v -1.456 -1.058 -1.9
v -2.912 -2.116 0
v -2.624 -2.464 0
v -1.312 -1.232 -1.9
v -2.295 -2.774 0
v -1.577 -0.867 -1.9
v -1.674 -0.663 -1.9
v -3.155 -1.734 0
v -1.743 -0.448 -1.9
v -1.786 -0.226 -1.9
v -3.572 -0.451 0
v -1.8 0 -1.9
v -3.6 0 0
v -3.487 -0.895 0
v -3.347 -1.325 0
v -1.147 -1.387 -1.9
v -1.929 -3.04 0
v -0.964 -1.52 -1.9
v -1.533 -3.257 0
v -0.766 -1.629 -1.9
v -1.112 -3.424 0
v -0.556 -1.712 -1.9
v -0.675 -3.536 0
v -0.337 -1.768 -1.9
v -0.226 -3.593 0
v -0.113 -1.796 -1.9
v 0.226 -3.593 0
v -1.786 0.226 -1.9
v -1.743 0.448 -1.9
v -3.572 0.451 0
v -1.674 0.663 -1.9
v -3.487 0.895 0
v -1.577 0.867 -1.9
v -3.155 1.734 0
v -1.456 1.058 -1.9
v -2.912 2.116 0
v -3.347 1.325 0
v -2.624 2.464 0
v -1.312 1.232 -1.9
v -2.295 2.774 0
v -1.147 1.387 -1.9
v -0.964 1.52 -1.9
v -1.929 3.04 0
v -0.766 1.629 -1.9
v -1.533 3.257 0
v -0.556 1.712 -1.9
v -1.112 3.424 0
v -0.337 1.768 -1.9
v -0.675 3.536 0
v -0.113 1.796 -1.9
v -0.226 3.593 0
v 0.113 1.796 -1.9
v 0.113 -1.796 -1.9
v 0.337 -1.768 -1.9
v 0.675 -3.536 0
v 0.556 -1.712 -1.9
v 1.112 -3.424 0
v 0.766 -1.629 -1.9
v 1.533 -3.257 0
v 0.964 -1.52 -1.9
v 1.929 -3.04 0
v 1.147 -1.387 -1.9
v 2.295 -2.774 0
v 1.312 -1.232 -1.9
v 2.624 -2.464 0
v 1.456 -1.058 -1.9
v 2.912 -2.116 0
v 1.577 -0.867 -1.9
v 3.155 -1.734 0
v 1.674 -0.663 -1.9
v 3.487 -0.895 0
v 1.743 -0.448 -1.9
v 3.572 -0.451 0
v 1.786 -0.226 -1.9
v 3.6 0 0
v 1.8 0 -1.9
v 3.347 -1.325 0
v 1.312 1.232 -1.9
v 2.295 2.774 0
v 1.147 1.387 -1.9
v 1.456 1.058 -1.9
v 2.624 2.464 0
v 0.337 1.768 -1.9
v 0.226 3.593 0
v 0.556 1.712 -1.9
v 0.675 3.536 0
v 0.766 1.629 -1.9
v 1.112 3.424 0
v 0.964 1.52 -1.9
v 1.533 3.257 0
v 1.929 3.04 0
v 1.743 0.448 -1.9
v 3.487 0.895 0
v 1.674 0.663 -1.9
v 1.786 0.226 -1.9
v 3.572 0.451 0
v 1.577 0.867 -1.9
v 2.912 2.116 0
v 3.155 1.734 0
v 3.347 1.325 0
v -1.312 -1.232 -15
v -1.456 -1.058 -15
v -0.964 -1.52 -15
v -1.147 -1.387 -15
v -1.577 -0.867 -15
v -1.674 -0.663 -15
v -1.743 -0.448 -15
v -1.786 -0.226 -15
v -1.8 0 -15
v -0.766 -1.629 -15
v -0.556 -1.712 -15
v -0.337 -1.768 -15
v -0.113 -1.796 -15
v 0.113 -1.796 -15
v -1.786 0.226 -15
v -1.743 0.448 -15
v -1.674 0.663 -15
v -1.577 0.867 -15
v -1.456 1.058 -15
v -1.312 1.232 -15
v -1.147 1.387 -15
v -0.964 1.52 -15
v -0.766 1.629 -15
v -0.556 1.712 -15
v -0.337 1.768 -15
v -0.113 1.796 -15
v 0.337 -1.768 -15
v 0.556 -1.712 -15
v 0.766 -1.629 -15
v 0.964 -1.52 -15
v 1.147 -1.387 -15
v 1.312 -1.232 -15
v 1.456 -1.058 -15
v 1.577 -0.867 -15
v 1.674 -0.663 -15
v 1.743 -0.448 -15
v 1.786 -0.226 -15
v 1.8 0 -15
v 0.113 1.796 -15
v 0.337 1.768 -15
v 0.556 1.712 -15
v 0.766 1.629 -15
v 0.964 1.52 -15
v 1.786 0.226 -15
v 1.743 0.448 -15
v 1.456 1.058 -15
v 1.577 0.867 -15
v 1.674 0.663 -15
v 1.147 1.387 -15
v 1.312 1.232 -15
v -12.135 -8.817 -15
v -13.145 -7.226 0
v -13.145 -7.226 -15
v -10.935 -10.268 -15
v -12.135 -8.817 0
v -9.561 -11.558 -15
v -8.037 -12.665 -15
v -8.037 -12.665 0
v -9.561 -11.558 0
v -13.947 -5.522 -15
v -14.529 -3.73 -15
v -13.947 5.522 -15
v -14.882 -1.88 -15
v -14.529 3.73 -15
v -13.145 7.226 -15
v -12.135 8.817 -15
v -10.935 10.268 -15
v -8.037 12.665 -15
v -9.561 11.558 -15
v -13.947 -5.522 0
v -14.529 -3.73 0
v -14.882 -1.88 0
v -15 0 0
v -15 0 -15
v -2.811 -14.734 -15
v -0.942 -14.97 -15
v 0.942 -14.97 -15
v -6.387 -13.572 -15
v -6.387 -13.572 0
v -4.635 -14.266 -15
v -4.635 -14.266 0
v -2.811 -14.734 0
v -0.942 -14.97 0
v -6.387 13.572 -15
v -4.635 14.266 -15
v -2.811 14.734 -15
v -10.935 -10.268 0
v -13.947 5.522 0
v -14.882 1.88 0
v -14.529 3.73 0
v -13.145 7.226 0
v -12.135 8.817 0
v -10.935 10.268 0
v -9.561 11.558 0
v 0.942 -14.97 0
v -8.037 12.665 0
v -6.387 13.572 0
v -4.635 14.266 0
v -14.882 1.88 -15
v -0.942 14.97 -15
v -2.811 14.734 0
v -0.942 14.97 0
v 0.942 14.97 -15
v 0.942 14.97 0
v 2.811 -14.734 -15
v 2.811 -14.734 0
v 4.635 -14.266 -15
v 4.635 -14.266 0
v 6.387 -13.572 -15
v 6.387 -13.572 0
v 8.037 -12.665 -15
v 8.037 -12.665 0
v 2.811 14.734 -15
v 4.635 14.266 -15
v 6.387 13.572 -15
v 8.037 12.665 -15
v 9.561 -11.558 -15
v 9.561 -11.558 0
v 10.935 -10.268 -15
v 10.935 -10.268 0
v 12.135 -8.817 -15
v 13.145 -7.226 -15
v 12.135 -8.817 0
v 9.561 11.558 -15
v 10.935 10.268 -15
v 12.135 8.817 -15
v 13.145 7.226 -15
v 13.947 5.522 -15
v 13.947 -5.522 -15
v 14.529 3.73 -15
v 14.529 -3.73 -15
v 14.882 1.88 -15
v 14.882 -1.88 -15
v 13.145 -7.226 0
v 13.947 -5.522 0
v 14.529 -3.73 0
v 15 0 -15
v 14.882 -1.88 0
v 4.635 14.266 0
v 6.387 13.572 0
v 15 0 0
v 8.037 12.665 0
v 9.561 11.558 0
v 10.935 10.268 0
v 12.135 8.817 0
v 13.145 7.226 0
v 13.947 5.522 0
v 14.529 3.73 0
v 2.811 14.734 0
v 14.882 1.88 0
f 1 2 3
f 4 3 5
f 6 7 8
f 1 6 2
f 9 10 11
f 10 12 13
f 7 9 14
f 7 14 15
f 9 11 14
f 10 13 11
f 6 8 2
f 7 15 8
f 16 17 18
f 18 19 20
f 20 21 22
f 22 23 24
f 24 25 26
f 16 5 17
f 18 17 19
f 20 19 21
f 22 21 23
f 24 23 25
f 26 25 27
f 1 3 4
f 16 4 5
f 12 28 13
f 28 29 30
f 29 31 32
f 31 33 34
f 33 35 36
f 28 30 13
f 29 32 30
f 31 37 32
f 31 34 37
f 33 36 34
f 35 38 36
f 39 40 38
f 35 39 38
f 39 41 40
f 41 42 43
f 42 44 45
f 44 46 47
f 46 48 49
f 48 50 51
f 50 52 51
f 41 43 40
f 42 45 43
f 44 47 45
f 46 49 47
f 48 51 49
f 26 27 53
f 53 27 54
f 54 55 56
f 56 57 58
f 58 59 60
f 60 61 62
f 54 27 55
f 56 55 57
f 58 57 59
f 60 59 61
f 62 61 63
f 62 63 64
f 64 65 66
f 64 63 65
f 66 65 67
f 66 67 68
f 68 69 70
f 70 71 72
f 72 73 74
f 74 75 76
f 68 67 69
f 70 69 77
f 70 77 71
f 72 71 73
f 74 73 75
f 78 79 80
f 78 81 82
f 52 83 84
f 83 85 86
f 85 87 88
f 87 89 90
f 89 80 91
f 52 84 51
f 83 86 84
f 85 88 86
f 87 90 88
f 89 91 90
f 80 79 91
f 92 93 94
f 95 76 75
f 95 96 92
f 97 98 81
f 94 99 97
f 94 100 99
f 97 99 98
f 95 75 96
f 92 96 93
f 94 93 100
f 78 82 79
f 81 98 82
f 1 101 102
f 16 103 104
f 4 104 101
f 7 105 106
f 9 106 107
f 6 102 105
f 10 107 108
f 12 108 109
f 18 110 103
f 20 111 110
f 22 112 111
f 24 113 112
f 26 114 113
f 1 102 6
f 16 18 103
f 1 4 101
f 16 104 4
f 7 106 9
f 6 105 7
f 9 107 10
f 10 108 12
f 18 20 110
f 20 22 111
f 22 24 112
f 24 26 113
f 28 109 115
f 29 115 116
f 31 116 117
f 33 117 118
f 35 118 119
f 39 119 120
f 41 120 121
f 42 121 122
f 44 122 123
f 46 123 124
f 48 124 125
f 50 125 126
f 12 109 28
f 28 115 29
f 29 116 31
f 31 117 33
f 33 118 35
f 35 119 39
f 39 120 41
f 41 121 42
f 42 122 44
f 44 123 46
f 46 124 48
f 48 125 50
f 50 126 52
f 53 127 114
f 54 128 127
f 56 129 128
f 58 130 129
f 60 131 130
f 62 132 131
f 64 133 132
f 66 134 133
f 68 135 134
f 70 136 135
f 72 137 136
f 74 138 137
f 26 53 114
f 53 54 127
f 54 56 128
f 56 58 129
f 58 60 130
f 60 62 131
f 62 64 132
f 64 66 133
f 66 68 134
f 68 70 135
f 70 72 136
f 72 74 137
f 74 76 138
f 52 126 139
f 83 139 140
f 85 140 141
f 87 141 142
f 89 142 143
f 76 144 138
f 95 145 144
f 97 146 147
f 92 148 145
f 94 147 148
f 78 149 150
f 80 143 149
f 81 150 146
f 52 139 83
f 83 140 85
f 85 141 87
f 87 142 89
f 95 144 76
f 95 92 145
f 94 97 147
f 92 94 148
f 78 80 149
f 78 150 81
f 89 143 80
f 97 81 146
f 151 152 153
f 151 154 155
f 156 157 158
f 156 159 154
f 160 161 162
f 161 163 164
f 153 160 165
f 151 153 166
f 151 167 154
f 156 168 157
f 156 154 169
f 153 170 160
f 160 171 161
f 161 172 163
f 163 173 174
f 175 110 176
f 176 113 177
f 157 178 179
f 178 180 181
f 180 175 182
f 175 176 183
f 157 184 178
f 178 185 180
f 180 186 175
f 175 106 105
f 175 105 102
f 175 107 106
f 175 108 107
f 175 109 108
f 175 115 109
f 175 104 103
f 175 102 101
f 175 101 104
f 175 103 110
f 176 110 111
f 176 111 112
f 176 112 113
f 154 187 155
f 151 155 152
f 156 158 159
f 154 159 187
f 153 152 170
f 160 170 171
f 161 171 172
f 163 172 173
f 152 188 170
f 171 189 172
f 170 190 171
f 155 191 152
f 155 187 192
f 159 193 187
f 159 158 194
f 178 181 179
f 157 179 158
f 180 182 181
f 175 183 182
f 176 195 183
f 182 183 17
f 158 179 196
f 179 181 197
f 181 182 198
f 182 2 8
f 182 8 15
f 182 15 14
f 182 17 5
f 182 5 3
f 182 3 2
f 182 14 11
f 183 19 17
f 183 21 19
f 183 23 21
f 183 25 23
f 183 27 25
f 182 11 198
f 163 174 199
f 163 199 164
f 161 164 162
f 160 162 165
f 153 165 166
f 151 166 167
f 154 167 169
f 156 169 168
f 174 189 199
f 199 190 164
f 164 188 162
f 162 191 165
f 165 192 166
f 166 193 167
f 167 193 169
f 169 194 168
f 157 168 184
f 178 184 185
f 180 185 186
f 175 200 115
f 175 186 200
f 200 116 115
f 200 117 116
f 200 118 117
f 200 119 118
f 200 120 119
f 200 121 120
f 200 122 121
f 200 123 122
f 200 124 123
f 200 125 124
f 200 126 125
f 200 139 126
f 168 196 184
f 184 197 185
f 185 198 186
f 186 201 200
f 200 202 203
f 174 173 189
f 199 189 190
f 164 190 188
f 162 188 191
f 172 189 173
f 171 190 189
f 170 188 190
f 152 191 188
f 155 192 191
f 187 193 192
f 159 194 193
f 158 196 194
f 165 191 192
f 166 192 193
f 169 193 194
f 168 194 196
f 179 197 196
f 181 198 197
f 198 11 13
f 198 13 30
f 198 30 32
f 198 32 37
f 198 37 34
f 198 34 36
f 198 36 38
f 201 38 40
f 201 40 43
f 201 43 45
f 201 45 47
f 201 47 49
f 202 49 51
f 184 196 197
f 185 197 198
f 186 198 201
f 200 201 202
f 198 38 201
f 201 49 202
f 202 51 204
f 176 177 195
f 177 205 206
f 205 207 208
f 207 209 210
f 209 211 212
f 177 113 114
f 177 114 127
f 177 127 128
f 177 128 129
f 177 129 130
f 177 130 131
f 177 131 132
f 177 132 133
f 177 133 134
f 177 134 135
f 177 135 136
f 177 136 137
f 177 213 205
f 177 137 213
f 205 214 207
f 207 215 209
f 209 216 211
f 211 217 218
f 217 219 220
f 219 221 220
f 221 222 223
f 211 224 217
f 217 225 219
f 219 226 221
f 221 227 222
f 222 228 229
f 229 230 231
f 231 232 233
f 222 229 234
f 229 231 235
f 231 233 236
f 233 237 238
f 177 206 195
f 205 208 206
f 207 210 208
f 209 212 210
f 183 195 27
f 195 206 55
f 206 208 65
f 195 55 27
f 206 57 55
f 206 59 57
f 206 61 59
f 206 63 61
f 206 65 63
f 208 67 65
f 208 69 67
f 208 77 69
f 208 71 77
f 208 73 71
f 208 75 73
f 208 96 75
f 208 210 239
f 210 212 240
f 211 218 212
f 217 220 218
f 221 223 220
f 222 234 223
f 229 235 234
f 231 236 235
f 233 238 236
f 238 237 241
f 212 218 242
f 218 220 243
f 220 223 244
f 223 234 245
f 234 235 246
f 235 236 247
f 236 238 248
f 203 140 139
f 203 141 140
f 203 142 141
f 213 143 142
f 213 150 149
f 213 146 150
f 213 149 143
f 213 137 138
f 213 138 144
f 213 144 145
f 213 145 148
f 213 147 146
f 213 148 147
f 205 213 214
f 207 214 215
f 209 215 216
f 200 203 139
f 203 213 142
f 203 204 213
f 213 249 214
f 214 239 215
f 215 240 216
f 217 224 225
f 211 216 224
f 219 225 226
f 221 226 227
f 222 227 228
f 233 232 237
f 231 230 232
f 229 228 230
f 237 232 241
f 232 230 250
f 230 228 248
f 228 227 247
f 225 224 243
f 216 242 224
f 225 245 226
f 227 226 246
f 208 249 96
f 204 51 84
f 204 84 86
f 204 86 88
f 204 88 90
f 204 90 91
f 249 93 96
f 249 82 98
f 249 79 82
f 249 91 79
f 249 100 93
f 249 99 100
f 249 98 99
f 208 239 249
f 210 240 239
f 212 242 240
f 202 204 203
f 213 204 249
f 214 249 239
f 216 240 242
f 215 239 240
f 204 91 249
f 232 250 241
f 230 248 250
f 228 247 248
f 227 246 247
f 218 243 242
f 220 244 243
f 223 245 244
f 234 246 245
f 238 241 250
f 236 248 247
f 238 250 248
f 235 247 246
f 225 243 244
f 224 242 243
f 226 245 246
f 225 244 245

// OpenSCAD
$fn = 50;


difference() {
	union() {
		translate(v = [0, 0, -15.0000000000]) {
			cylinder(h = 15, r = 15.0000000000);
		}
	}
	union() {
		translate(v = [0, 0, 0]) {
			rotate(a = [0, 0, 0]) {
				difference() {
					union() {
						translate(v = [0, 0, -18.0000000000]) {
							cylinder(h = 18, r = 1.5000000000);
						}
						translate(v = [0, 0, -1.9000000000]) {
							cylinder(h = 1.9000000000, r1 = 1.8000000000, r2 = 3.6000000000);
						}
						translate(v = [0, 0, -18.0000000000]) {
							cylinder(h = 18, r = 1.8000000000);
						}
						translate(v = [0, 0, -18.0000000000]) {
							cylinder(h = 18, r = 1.5000000000);
						}
					}
					union();
				}
			}
		}
	}
}
